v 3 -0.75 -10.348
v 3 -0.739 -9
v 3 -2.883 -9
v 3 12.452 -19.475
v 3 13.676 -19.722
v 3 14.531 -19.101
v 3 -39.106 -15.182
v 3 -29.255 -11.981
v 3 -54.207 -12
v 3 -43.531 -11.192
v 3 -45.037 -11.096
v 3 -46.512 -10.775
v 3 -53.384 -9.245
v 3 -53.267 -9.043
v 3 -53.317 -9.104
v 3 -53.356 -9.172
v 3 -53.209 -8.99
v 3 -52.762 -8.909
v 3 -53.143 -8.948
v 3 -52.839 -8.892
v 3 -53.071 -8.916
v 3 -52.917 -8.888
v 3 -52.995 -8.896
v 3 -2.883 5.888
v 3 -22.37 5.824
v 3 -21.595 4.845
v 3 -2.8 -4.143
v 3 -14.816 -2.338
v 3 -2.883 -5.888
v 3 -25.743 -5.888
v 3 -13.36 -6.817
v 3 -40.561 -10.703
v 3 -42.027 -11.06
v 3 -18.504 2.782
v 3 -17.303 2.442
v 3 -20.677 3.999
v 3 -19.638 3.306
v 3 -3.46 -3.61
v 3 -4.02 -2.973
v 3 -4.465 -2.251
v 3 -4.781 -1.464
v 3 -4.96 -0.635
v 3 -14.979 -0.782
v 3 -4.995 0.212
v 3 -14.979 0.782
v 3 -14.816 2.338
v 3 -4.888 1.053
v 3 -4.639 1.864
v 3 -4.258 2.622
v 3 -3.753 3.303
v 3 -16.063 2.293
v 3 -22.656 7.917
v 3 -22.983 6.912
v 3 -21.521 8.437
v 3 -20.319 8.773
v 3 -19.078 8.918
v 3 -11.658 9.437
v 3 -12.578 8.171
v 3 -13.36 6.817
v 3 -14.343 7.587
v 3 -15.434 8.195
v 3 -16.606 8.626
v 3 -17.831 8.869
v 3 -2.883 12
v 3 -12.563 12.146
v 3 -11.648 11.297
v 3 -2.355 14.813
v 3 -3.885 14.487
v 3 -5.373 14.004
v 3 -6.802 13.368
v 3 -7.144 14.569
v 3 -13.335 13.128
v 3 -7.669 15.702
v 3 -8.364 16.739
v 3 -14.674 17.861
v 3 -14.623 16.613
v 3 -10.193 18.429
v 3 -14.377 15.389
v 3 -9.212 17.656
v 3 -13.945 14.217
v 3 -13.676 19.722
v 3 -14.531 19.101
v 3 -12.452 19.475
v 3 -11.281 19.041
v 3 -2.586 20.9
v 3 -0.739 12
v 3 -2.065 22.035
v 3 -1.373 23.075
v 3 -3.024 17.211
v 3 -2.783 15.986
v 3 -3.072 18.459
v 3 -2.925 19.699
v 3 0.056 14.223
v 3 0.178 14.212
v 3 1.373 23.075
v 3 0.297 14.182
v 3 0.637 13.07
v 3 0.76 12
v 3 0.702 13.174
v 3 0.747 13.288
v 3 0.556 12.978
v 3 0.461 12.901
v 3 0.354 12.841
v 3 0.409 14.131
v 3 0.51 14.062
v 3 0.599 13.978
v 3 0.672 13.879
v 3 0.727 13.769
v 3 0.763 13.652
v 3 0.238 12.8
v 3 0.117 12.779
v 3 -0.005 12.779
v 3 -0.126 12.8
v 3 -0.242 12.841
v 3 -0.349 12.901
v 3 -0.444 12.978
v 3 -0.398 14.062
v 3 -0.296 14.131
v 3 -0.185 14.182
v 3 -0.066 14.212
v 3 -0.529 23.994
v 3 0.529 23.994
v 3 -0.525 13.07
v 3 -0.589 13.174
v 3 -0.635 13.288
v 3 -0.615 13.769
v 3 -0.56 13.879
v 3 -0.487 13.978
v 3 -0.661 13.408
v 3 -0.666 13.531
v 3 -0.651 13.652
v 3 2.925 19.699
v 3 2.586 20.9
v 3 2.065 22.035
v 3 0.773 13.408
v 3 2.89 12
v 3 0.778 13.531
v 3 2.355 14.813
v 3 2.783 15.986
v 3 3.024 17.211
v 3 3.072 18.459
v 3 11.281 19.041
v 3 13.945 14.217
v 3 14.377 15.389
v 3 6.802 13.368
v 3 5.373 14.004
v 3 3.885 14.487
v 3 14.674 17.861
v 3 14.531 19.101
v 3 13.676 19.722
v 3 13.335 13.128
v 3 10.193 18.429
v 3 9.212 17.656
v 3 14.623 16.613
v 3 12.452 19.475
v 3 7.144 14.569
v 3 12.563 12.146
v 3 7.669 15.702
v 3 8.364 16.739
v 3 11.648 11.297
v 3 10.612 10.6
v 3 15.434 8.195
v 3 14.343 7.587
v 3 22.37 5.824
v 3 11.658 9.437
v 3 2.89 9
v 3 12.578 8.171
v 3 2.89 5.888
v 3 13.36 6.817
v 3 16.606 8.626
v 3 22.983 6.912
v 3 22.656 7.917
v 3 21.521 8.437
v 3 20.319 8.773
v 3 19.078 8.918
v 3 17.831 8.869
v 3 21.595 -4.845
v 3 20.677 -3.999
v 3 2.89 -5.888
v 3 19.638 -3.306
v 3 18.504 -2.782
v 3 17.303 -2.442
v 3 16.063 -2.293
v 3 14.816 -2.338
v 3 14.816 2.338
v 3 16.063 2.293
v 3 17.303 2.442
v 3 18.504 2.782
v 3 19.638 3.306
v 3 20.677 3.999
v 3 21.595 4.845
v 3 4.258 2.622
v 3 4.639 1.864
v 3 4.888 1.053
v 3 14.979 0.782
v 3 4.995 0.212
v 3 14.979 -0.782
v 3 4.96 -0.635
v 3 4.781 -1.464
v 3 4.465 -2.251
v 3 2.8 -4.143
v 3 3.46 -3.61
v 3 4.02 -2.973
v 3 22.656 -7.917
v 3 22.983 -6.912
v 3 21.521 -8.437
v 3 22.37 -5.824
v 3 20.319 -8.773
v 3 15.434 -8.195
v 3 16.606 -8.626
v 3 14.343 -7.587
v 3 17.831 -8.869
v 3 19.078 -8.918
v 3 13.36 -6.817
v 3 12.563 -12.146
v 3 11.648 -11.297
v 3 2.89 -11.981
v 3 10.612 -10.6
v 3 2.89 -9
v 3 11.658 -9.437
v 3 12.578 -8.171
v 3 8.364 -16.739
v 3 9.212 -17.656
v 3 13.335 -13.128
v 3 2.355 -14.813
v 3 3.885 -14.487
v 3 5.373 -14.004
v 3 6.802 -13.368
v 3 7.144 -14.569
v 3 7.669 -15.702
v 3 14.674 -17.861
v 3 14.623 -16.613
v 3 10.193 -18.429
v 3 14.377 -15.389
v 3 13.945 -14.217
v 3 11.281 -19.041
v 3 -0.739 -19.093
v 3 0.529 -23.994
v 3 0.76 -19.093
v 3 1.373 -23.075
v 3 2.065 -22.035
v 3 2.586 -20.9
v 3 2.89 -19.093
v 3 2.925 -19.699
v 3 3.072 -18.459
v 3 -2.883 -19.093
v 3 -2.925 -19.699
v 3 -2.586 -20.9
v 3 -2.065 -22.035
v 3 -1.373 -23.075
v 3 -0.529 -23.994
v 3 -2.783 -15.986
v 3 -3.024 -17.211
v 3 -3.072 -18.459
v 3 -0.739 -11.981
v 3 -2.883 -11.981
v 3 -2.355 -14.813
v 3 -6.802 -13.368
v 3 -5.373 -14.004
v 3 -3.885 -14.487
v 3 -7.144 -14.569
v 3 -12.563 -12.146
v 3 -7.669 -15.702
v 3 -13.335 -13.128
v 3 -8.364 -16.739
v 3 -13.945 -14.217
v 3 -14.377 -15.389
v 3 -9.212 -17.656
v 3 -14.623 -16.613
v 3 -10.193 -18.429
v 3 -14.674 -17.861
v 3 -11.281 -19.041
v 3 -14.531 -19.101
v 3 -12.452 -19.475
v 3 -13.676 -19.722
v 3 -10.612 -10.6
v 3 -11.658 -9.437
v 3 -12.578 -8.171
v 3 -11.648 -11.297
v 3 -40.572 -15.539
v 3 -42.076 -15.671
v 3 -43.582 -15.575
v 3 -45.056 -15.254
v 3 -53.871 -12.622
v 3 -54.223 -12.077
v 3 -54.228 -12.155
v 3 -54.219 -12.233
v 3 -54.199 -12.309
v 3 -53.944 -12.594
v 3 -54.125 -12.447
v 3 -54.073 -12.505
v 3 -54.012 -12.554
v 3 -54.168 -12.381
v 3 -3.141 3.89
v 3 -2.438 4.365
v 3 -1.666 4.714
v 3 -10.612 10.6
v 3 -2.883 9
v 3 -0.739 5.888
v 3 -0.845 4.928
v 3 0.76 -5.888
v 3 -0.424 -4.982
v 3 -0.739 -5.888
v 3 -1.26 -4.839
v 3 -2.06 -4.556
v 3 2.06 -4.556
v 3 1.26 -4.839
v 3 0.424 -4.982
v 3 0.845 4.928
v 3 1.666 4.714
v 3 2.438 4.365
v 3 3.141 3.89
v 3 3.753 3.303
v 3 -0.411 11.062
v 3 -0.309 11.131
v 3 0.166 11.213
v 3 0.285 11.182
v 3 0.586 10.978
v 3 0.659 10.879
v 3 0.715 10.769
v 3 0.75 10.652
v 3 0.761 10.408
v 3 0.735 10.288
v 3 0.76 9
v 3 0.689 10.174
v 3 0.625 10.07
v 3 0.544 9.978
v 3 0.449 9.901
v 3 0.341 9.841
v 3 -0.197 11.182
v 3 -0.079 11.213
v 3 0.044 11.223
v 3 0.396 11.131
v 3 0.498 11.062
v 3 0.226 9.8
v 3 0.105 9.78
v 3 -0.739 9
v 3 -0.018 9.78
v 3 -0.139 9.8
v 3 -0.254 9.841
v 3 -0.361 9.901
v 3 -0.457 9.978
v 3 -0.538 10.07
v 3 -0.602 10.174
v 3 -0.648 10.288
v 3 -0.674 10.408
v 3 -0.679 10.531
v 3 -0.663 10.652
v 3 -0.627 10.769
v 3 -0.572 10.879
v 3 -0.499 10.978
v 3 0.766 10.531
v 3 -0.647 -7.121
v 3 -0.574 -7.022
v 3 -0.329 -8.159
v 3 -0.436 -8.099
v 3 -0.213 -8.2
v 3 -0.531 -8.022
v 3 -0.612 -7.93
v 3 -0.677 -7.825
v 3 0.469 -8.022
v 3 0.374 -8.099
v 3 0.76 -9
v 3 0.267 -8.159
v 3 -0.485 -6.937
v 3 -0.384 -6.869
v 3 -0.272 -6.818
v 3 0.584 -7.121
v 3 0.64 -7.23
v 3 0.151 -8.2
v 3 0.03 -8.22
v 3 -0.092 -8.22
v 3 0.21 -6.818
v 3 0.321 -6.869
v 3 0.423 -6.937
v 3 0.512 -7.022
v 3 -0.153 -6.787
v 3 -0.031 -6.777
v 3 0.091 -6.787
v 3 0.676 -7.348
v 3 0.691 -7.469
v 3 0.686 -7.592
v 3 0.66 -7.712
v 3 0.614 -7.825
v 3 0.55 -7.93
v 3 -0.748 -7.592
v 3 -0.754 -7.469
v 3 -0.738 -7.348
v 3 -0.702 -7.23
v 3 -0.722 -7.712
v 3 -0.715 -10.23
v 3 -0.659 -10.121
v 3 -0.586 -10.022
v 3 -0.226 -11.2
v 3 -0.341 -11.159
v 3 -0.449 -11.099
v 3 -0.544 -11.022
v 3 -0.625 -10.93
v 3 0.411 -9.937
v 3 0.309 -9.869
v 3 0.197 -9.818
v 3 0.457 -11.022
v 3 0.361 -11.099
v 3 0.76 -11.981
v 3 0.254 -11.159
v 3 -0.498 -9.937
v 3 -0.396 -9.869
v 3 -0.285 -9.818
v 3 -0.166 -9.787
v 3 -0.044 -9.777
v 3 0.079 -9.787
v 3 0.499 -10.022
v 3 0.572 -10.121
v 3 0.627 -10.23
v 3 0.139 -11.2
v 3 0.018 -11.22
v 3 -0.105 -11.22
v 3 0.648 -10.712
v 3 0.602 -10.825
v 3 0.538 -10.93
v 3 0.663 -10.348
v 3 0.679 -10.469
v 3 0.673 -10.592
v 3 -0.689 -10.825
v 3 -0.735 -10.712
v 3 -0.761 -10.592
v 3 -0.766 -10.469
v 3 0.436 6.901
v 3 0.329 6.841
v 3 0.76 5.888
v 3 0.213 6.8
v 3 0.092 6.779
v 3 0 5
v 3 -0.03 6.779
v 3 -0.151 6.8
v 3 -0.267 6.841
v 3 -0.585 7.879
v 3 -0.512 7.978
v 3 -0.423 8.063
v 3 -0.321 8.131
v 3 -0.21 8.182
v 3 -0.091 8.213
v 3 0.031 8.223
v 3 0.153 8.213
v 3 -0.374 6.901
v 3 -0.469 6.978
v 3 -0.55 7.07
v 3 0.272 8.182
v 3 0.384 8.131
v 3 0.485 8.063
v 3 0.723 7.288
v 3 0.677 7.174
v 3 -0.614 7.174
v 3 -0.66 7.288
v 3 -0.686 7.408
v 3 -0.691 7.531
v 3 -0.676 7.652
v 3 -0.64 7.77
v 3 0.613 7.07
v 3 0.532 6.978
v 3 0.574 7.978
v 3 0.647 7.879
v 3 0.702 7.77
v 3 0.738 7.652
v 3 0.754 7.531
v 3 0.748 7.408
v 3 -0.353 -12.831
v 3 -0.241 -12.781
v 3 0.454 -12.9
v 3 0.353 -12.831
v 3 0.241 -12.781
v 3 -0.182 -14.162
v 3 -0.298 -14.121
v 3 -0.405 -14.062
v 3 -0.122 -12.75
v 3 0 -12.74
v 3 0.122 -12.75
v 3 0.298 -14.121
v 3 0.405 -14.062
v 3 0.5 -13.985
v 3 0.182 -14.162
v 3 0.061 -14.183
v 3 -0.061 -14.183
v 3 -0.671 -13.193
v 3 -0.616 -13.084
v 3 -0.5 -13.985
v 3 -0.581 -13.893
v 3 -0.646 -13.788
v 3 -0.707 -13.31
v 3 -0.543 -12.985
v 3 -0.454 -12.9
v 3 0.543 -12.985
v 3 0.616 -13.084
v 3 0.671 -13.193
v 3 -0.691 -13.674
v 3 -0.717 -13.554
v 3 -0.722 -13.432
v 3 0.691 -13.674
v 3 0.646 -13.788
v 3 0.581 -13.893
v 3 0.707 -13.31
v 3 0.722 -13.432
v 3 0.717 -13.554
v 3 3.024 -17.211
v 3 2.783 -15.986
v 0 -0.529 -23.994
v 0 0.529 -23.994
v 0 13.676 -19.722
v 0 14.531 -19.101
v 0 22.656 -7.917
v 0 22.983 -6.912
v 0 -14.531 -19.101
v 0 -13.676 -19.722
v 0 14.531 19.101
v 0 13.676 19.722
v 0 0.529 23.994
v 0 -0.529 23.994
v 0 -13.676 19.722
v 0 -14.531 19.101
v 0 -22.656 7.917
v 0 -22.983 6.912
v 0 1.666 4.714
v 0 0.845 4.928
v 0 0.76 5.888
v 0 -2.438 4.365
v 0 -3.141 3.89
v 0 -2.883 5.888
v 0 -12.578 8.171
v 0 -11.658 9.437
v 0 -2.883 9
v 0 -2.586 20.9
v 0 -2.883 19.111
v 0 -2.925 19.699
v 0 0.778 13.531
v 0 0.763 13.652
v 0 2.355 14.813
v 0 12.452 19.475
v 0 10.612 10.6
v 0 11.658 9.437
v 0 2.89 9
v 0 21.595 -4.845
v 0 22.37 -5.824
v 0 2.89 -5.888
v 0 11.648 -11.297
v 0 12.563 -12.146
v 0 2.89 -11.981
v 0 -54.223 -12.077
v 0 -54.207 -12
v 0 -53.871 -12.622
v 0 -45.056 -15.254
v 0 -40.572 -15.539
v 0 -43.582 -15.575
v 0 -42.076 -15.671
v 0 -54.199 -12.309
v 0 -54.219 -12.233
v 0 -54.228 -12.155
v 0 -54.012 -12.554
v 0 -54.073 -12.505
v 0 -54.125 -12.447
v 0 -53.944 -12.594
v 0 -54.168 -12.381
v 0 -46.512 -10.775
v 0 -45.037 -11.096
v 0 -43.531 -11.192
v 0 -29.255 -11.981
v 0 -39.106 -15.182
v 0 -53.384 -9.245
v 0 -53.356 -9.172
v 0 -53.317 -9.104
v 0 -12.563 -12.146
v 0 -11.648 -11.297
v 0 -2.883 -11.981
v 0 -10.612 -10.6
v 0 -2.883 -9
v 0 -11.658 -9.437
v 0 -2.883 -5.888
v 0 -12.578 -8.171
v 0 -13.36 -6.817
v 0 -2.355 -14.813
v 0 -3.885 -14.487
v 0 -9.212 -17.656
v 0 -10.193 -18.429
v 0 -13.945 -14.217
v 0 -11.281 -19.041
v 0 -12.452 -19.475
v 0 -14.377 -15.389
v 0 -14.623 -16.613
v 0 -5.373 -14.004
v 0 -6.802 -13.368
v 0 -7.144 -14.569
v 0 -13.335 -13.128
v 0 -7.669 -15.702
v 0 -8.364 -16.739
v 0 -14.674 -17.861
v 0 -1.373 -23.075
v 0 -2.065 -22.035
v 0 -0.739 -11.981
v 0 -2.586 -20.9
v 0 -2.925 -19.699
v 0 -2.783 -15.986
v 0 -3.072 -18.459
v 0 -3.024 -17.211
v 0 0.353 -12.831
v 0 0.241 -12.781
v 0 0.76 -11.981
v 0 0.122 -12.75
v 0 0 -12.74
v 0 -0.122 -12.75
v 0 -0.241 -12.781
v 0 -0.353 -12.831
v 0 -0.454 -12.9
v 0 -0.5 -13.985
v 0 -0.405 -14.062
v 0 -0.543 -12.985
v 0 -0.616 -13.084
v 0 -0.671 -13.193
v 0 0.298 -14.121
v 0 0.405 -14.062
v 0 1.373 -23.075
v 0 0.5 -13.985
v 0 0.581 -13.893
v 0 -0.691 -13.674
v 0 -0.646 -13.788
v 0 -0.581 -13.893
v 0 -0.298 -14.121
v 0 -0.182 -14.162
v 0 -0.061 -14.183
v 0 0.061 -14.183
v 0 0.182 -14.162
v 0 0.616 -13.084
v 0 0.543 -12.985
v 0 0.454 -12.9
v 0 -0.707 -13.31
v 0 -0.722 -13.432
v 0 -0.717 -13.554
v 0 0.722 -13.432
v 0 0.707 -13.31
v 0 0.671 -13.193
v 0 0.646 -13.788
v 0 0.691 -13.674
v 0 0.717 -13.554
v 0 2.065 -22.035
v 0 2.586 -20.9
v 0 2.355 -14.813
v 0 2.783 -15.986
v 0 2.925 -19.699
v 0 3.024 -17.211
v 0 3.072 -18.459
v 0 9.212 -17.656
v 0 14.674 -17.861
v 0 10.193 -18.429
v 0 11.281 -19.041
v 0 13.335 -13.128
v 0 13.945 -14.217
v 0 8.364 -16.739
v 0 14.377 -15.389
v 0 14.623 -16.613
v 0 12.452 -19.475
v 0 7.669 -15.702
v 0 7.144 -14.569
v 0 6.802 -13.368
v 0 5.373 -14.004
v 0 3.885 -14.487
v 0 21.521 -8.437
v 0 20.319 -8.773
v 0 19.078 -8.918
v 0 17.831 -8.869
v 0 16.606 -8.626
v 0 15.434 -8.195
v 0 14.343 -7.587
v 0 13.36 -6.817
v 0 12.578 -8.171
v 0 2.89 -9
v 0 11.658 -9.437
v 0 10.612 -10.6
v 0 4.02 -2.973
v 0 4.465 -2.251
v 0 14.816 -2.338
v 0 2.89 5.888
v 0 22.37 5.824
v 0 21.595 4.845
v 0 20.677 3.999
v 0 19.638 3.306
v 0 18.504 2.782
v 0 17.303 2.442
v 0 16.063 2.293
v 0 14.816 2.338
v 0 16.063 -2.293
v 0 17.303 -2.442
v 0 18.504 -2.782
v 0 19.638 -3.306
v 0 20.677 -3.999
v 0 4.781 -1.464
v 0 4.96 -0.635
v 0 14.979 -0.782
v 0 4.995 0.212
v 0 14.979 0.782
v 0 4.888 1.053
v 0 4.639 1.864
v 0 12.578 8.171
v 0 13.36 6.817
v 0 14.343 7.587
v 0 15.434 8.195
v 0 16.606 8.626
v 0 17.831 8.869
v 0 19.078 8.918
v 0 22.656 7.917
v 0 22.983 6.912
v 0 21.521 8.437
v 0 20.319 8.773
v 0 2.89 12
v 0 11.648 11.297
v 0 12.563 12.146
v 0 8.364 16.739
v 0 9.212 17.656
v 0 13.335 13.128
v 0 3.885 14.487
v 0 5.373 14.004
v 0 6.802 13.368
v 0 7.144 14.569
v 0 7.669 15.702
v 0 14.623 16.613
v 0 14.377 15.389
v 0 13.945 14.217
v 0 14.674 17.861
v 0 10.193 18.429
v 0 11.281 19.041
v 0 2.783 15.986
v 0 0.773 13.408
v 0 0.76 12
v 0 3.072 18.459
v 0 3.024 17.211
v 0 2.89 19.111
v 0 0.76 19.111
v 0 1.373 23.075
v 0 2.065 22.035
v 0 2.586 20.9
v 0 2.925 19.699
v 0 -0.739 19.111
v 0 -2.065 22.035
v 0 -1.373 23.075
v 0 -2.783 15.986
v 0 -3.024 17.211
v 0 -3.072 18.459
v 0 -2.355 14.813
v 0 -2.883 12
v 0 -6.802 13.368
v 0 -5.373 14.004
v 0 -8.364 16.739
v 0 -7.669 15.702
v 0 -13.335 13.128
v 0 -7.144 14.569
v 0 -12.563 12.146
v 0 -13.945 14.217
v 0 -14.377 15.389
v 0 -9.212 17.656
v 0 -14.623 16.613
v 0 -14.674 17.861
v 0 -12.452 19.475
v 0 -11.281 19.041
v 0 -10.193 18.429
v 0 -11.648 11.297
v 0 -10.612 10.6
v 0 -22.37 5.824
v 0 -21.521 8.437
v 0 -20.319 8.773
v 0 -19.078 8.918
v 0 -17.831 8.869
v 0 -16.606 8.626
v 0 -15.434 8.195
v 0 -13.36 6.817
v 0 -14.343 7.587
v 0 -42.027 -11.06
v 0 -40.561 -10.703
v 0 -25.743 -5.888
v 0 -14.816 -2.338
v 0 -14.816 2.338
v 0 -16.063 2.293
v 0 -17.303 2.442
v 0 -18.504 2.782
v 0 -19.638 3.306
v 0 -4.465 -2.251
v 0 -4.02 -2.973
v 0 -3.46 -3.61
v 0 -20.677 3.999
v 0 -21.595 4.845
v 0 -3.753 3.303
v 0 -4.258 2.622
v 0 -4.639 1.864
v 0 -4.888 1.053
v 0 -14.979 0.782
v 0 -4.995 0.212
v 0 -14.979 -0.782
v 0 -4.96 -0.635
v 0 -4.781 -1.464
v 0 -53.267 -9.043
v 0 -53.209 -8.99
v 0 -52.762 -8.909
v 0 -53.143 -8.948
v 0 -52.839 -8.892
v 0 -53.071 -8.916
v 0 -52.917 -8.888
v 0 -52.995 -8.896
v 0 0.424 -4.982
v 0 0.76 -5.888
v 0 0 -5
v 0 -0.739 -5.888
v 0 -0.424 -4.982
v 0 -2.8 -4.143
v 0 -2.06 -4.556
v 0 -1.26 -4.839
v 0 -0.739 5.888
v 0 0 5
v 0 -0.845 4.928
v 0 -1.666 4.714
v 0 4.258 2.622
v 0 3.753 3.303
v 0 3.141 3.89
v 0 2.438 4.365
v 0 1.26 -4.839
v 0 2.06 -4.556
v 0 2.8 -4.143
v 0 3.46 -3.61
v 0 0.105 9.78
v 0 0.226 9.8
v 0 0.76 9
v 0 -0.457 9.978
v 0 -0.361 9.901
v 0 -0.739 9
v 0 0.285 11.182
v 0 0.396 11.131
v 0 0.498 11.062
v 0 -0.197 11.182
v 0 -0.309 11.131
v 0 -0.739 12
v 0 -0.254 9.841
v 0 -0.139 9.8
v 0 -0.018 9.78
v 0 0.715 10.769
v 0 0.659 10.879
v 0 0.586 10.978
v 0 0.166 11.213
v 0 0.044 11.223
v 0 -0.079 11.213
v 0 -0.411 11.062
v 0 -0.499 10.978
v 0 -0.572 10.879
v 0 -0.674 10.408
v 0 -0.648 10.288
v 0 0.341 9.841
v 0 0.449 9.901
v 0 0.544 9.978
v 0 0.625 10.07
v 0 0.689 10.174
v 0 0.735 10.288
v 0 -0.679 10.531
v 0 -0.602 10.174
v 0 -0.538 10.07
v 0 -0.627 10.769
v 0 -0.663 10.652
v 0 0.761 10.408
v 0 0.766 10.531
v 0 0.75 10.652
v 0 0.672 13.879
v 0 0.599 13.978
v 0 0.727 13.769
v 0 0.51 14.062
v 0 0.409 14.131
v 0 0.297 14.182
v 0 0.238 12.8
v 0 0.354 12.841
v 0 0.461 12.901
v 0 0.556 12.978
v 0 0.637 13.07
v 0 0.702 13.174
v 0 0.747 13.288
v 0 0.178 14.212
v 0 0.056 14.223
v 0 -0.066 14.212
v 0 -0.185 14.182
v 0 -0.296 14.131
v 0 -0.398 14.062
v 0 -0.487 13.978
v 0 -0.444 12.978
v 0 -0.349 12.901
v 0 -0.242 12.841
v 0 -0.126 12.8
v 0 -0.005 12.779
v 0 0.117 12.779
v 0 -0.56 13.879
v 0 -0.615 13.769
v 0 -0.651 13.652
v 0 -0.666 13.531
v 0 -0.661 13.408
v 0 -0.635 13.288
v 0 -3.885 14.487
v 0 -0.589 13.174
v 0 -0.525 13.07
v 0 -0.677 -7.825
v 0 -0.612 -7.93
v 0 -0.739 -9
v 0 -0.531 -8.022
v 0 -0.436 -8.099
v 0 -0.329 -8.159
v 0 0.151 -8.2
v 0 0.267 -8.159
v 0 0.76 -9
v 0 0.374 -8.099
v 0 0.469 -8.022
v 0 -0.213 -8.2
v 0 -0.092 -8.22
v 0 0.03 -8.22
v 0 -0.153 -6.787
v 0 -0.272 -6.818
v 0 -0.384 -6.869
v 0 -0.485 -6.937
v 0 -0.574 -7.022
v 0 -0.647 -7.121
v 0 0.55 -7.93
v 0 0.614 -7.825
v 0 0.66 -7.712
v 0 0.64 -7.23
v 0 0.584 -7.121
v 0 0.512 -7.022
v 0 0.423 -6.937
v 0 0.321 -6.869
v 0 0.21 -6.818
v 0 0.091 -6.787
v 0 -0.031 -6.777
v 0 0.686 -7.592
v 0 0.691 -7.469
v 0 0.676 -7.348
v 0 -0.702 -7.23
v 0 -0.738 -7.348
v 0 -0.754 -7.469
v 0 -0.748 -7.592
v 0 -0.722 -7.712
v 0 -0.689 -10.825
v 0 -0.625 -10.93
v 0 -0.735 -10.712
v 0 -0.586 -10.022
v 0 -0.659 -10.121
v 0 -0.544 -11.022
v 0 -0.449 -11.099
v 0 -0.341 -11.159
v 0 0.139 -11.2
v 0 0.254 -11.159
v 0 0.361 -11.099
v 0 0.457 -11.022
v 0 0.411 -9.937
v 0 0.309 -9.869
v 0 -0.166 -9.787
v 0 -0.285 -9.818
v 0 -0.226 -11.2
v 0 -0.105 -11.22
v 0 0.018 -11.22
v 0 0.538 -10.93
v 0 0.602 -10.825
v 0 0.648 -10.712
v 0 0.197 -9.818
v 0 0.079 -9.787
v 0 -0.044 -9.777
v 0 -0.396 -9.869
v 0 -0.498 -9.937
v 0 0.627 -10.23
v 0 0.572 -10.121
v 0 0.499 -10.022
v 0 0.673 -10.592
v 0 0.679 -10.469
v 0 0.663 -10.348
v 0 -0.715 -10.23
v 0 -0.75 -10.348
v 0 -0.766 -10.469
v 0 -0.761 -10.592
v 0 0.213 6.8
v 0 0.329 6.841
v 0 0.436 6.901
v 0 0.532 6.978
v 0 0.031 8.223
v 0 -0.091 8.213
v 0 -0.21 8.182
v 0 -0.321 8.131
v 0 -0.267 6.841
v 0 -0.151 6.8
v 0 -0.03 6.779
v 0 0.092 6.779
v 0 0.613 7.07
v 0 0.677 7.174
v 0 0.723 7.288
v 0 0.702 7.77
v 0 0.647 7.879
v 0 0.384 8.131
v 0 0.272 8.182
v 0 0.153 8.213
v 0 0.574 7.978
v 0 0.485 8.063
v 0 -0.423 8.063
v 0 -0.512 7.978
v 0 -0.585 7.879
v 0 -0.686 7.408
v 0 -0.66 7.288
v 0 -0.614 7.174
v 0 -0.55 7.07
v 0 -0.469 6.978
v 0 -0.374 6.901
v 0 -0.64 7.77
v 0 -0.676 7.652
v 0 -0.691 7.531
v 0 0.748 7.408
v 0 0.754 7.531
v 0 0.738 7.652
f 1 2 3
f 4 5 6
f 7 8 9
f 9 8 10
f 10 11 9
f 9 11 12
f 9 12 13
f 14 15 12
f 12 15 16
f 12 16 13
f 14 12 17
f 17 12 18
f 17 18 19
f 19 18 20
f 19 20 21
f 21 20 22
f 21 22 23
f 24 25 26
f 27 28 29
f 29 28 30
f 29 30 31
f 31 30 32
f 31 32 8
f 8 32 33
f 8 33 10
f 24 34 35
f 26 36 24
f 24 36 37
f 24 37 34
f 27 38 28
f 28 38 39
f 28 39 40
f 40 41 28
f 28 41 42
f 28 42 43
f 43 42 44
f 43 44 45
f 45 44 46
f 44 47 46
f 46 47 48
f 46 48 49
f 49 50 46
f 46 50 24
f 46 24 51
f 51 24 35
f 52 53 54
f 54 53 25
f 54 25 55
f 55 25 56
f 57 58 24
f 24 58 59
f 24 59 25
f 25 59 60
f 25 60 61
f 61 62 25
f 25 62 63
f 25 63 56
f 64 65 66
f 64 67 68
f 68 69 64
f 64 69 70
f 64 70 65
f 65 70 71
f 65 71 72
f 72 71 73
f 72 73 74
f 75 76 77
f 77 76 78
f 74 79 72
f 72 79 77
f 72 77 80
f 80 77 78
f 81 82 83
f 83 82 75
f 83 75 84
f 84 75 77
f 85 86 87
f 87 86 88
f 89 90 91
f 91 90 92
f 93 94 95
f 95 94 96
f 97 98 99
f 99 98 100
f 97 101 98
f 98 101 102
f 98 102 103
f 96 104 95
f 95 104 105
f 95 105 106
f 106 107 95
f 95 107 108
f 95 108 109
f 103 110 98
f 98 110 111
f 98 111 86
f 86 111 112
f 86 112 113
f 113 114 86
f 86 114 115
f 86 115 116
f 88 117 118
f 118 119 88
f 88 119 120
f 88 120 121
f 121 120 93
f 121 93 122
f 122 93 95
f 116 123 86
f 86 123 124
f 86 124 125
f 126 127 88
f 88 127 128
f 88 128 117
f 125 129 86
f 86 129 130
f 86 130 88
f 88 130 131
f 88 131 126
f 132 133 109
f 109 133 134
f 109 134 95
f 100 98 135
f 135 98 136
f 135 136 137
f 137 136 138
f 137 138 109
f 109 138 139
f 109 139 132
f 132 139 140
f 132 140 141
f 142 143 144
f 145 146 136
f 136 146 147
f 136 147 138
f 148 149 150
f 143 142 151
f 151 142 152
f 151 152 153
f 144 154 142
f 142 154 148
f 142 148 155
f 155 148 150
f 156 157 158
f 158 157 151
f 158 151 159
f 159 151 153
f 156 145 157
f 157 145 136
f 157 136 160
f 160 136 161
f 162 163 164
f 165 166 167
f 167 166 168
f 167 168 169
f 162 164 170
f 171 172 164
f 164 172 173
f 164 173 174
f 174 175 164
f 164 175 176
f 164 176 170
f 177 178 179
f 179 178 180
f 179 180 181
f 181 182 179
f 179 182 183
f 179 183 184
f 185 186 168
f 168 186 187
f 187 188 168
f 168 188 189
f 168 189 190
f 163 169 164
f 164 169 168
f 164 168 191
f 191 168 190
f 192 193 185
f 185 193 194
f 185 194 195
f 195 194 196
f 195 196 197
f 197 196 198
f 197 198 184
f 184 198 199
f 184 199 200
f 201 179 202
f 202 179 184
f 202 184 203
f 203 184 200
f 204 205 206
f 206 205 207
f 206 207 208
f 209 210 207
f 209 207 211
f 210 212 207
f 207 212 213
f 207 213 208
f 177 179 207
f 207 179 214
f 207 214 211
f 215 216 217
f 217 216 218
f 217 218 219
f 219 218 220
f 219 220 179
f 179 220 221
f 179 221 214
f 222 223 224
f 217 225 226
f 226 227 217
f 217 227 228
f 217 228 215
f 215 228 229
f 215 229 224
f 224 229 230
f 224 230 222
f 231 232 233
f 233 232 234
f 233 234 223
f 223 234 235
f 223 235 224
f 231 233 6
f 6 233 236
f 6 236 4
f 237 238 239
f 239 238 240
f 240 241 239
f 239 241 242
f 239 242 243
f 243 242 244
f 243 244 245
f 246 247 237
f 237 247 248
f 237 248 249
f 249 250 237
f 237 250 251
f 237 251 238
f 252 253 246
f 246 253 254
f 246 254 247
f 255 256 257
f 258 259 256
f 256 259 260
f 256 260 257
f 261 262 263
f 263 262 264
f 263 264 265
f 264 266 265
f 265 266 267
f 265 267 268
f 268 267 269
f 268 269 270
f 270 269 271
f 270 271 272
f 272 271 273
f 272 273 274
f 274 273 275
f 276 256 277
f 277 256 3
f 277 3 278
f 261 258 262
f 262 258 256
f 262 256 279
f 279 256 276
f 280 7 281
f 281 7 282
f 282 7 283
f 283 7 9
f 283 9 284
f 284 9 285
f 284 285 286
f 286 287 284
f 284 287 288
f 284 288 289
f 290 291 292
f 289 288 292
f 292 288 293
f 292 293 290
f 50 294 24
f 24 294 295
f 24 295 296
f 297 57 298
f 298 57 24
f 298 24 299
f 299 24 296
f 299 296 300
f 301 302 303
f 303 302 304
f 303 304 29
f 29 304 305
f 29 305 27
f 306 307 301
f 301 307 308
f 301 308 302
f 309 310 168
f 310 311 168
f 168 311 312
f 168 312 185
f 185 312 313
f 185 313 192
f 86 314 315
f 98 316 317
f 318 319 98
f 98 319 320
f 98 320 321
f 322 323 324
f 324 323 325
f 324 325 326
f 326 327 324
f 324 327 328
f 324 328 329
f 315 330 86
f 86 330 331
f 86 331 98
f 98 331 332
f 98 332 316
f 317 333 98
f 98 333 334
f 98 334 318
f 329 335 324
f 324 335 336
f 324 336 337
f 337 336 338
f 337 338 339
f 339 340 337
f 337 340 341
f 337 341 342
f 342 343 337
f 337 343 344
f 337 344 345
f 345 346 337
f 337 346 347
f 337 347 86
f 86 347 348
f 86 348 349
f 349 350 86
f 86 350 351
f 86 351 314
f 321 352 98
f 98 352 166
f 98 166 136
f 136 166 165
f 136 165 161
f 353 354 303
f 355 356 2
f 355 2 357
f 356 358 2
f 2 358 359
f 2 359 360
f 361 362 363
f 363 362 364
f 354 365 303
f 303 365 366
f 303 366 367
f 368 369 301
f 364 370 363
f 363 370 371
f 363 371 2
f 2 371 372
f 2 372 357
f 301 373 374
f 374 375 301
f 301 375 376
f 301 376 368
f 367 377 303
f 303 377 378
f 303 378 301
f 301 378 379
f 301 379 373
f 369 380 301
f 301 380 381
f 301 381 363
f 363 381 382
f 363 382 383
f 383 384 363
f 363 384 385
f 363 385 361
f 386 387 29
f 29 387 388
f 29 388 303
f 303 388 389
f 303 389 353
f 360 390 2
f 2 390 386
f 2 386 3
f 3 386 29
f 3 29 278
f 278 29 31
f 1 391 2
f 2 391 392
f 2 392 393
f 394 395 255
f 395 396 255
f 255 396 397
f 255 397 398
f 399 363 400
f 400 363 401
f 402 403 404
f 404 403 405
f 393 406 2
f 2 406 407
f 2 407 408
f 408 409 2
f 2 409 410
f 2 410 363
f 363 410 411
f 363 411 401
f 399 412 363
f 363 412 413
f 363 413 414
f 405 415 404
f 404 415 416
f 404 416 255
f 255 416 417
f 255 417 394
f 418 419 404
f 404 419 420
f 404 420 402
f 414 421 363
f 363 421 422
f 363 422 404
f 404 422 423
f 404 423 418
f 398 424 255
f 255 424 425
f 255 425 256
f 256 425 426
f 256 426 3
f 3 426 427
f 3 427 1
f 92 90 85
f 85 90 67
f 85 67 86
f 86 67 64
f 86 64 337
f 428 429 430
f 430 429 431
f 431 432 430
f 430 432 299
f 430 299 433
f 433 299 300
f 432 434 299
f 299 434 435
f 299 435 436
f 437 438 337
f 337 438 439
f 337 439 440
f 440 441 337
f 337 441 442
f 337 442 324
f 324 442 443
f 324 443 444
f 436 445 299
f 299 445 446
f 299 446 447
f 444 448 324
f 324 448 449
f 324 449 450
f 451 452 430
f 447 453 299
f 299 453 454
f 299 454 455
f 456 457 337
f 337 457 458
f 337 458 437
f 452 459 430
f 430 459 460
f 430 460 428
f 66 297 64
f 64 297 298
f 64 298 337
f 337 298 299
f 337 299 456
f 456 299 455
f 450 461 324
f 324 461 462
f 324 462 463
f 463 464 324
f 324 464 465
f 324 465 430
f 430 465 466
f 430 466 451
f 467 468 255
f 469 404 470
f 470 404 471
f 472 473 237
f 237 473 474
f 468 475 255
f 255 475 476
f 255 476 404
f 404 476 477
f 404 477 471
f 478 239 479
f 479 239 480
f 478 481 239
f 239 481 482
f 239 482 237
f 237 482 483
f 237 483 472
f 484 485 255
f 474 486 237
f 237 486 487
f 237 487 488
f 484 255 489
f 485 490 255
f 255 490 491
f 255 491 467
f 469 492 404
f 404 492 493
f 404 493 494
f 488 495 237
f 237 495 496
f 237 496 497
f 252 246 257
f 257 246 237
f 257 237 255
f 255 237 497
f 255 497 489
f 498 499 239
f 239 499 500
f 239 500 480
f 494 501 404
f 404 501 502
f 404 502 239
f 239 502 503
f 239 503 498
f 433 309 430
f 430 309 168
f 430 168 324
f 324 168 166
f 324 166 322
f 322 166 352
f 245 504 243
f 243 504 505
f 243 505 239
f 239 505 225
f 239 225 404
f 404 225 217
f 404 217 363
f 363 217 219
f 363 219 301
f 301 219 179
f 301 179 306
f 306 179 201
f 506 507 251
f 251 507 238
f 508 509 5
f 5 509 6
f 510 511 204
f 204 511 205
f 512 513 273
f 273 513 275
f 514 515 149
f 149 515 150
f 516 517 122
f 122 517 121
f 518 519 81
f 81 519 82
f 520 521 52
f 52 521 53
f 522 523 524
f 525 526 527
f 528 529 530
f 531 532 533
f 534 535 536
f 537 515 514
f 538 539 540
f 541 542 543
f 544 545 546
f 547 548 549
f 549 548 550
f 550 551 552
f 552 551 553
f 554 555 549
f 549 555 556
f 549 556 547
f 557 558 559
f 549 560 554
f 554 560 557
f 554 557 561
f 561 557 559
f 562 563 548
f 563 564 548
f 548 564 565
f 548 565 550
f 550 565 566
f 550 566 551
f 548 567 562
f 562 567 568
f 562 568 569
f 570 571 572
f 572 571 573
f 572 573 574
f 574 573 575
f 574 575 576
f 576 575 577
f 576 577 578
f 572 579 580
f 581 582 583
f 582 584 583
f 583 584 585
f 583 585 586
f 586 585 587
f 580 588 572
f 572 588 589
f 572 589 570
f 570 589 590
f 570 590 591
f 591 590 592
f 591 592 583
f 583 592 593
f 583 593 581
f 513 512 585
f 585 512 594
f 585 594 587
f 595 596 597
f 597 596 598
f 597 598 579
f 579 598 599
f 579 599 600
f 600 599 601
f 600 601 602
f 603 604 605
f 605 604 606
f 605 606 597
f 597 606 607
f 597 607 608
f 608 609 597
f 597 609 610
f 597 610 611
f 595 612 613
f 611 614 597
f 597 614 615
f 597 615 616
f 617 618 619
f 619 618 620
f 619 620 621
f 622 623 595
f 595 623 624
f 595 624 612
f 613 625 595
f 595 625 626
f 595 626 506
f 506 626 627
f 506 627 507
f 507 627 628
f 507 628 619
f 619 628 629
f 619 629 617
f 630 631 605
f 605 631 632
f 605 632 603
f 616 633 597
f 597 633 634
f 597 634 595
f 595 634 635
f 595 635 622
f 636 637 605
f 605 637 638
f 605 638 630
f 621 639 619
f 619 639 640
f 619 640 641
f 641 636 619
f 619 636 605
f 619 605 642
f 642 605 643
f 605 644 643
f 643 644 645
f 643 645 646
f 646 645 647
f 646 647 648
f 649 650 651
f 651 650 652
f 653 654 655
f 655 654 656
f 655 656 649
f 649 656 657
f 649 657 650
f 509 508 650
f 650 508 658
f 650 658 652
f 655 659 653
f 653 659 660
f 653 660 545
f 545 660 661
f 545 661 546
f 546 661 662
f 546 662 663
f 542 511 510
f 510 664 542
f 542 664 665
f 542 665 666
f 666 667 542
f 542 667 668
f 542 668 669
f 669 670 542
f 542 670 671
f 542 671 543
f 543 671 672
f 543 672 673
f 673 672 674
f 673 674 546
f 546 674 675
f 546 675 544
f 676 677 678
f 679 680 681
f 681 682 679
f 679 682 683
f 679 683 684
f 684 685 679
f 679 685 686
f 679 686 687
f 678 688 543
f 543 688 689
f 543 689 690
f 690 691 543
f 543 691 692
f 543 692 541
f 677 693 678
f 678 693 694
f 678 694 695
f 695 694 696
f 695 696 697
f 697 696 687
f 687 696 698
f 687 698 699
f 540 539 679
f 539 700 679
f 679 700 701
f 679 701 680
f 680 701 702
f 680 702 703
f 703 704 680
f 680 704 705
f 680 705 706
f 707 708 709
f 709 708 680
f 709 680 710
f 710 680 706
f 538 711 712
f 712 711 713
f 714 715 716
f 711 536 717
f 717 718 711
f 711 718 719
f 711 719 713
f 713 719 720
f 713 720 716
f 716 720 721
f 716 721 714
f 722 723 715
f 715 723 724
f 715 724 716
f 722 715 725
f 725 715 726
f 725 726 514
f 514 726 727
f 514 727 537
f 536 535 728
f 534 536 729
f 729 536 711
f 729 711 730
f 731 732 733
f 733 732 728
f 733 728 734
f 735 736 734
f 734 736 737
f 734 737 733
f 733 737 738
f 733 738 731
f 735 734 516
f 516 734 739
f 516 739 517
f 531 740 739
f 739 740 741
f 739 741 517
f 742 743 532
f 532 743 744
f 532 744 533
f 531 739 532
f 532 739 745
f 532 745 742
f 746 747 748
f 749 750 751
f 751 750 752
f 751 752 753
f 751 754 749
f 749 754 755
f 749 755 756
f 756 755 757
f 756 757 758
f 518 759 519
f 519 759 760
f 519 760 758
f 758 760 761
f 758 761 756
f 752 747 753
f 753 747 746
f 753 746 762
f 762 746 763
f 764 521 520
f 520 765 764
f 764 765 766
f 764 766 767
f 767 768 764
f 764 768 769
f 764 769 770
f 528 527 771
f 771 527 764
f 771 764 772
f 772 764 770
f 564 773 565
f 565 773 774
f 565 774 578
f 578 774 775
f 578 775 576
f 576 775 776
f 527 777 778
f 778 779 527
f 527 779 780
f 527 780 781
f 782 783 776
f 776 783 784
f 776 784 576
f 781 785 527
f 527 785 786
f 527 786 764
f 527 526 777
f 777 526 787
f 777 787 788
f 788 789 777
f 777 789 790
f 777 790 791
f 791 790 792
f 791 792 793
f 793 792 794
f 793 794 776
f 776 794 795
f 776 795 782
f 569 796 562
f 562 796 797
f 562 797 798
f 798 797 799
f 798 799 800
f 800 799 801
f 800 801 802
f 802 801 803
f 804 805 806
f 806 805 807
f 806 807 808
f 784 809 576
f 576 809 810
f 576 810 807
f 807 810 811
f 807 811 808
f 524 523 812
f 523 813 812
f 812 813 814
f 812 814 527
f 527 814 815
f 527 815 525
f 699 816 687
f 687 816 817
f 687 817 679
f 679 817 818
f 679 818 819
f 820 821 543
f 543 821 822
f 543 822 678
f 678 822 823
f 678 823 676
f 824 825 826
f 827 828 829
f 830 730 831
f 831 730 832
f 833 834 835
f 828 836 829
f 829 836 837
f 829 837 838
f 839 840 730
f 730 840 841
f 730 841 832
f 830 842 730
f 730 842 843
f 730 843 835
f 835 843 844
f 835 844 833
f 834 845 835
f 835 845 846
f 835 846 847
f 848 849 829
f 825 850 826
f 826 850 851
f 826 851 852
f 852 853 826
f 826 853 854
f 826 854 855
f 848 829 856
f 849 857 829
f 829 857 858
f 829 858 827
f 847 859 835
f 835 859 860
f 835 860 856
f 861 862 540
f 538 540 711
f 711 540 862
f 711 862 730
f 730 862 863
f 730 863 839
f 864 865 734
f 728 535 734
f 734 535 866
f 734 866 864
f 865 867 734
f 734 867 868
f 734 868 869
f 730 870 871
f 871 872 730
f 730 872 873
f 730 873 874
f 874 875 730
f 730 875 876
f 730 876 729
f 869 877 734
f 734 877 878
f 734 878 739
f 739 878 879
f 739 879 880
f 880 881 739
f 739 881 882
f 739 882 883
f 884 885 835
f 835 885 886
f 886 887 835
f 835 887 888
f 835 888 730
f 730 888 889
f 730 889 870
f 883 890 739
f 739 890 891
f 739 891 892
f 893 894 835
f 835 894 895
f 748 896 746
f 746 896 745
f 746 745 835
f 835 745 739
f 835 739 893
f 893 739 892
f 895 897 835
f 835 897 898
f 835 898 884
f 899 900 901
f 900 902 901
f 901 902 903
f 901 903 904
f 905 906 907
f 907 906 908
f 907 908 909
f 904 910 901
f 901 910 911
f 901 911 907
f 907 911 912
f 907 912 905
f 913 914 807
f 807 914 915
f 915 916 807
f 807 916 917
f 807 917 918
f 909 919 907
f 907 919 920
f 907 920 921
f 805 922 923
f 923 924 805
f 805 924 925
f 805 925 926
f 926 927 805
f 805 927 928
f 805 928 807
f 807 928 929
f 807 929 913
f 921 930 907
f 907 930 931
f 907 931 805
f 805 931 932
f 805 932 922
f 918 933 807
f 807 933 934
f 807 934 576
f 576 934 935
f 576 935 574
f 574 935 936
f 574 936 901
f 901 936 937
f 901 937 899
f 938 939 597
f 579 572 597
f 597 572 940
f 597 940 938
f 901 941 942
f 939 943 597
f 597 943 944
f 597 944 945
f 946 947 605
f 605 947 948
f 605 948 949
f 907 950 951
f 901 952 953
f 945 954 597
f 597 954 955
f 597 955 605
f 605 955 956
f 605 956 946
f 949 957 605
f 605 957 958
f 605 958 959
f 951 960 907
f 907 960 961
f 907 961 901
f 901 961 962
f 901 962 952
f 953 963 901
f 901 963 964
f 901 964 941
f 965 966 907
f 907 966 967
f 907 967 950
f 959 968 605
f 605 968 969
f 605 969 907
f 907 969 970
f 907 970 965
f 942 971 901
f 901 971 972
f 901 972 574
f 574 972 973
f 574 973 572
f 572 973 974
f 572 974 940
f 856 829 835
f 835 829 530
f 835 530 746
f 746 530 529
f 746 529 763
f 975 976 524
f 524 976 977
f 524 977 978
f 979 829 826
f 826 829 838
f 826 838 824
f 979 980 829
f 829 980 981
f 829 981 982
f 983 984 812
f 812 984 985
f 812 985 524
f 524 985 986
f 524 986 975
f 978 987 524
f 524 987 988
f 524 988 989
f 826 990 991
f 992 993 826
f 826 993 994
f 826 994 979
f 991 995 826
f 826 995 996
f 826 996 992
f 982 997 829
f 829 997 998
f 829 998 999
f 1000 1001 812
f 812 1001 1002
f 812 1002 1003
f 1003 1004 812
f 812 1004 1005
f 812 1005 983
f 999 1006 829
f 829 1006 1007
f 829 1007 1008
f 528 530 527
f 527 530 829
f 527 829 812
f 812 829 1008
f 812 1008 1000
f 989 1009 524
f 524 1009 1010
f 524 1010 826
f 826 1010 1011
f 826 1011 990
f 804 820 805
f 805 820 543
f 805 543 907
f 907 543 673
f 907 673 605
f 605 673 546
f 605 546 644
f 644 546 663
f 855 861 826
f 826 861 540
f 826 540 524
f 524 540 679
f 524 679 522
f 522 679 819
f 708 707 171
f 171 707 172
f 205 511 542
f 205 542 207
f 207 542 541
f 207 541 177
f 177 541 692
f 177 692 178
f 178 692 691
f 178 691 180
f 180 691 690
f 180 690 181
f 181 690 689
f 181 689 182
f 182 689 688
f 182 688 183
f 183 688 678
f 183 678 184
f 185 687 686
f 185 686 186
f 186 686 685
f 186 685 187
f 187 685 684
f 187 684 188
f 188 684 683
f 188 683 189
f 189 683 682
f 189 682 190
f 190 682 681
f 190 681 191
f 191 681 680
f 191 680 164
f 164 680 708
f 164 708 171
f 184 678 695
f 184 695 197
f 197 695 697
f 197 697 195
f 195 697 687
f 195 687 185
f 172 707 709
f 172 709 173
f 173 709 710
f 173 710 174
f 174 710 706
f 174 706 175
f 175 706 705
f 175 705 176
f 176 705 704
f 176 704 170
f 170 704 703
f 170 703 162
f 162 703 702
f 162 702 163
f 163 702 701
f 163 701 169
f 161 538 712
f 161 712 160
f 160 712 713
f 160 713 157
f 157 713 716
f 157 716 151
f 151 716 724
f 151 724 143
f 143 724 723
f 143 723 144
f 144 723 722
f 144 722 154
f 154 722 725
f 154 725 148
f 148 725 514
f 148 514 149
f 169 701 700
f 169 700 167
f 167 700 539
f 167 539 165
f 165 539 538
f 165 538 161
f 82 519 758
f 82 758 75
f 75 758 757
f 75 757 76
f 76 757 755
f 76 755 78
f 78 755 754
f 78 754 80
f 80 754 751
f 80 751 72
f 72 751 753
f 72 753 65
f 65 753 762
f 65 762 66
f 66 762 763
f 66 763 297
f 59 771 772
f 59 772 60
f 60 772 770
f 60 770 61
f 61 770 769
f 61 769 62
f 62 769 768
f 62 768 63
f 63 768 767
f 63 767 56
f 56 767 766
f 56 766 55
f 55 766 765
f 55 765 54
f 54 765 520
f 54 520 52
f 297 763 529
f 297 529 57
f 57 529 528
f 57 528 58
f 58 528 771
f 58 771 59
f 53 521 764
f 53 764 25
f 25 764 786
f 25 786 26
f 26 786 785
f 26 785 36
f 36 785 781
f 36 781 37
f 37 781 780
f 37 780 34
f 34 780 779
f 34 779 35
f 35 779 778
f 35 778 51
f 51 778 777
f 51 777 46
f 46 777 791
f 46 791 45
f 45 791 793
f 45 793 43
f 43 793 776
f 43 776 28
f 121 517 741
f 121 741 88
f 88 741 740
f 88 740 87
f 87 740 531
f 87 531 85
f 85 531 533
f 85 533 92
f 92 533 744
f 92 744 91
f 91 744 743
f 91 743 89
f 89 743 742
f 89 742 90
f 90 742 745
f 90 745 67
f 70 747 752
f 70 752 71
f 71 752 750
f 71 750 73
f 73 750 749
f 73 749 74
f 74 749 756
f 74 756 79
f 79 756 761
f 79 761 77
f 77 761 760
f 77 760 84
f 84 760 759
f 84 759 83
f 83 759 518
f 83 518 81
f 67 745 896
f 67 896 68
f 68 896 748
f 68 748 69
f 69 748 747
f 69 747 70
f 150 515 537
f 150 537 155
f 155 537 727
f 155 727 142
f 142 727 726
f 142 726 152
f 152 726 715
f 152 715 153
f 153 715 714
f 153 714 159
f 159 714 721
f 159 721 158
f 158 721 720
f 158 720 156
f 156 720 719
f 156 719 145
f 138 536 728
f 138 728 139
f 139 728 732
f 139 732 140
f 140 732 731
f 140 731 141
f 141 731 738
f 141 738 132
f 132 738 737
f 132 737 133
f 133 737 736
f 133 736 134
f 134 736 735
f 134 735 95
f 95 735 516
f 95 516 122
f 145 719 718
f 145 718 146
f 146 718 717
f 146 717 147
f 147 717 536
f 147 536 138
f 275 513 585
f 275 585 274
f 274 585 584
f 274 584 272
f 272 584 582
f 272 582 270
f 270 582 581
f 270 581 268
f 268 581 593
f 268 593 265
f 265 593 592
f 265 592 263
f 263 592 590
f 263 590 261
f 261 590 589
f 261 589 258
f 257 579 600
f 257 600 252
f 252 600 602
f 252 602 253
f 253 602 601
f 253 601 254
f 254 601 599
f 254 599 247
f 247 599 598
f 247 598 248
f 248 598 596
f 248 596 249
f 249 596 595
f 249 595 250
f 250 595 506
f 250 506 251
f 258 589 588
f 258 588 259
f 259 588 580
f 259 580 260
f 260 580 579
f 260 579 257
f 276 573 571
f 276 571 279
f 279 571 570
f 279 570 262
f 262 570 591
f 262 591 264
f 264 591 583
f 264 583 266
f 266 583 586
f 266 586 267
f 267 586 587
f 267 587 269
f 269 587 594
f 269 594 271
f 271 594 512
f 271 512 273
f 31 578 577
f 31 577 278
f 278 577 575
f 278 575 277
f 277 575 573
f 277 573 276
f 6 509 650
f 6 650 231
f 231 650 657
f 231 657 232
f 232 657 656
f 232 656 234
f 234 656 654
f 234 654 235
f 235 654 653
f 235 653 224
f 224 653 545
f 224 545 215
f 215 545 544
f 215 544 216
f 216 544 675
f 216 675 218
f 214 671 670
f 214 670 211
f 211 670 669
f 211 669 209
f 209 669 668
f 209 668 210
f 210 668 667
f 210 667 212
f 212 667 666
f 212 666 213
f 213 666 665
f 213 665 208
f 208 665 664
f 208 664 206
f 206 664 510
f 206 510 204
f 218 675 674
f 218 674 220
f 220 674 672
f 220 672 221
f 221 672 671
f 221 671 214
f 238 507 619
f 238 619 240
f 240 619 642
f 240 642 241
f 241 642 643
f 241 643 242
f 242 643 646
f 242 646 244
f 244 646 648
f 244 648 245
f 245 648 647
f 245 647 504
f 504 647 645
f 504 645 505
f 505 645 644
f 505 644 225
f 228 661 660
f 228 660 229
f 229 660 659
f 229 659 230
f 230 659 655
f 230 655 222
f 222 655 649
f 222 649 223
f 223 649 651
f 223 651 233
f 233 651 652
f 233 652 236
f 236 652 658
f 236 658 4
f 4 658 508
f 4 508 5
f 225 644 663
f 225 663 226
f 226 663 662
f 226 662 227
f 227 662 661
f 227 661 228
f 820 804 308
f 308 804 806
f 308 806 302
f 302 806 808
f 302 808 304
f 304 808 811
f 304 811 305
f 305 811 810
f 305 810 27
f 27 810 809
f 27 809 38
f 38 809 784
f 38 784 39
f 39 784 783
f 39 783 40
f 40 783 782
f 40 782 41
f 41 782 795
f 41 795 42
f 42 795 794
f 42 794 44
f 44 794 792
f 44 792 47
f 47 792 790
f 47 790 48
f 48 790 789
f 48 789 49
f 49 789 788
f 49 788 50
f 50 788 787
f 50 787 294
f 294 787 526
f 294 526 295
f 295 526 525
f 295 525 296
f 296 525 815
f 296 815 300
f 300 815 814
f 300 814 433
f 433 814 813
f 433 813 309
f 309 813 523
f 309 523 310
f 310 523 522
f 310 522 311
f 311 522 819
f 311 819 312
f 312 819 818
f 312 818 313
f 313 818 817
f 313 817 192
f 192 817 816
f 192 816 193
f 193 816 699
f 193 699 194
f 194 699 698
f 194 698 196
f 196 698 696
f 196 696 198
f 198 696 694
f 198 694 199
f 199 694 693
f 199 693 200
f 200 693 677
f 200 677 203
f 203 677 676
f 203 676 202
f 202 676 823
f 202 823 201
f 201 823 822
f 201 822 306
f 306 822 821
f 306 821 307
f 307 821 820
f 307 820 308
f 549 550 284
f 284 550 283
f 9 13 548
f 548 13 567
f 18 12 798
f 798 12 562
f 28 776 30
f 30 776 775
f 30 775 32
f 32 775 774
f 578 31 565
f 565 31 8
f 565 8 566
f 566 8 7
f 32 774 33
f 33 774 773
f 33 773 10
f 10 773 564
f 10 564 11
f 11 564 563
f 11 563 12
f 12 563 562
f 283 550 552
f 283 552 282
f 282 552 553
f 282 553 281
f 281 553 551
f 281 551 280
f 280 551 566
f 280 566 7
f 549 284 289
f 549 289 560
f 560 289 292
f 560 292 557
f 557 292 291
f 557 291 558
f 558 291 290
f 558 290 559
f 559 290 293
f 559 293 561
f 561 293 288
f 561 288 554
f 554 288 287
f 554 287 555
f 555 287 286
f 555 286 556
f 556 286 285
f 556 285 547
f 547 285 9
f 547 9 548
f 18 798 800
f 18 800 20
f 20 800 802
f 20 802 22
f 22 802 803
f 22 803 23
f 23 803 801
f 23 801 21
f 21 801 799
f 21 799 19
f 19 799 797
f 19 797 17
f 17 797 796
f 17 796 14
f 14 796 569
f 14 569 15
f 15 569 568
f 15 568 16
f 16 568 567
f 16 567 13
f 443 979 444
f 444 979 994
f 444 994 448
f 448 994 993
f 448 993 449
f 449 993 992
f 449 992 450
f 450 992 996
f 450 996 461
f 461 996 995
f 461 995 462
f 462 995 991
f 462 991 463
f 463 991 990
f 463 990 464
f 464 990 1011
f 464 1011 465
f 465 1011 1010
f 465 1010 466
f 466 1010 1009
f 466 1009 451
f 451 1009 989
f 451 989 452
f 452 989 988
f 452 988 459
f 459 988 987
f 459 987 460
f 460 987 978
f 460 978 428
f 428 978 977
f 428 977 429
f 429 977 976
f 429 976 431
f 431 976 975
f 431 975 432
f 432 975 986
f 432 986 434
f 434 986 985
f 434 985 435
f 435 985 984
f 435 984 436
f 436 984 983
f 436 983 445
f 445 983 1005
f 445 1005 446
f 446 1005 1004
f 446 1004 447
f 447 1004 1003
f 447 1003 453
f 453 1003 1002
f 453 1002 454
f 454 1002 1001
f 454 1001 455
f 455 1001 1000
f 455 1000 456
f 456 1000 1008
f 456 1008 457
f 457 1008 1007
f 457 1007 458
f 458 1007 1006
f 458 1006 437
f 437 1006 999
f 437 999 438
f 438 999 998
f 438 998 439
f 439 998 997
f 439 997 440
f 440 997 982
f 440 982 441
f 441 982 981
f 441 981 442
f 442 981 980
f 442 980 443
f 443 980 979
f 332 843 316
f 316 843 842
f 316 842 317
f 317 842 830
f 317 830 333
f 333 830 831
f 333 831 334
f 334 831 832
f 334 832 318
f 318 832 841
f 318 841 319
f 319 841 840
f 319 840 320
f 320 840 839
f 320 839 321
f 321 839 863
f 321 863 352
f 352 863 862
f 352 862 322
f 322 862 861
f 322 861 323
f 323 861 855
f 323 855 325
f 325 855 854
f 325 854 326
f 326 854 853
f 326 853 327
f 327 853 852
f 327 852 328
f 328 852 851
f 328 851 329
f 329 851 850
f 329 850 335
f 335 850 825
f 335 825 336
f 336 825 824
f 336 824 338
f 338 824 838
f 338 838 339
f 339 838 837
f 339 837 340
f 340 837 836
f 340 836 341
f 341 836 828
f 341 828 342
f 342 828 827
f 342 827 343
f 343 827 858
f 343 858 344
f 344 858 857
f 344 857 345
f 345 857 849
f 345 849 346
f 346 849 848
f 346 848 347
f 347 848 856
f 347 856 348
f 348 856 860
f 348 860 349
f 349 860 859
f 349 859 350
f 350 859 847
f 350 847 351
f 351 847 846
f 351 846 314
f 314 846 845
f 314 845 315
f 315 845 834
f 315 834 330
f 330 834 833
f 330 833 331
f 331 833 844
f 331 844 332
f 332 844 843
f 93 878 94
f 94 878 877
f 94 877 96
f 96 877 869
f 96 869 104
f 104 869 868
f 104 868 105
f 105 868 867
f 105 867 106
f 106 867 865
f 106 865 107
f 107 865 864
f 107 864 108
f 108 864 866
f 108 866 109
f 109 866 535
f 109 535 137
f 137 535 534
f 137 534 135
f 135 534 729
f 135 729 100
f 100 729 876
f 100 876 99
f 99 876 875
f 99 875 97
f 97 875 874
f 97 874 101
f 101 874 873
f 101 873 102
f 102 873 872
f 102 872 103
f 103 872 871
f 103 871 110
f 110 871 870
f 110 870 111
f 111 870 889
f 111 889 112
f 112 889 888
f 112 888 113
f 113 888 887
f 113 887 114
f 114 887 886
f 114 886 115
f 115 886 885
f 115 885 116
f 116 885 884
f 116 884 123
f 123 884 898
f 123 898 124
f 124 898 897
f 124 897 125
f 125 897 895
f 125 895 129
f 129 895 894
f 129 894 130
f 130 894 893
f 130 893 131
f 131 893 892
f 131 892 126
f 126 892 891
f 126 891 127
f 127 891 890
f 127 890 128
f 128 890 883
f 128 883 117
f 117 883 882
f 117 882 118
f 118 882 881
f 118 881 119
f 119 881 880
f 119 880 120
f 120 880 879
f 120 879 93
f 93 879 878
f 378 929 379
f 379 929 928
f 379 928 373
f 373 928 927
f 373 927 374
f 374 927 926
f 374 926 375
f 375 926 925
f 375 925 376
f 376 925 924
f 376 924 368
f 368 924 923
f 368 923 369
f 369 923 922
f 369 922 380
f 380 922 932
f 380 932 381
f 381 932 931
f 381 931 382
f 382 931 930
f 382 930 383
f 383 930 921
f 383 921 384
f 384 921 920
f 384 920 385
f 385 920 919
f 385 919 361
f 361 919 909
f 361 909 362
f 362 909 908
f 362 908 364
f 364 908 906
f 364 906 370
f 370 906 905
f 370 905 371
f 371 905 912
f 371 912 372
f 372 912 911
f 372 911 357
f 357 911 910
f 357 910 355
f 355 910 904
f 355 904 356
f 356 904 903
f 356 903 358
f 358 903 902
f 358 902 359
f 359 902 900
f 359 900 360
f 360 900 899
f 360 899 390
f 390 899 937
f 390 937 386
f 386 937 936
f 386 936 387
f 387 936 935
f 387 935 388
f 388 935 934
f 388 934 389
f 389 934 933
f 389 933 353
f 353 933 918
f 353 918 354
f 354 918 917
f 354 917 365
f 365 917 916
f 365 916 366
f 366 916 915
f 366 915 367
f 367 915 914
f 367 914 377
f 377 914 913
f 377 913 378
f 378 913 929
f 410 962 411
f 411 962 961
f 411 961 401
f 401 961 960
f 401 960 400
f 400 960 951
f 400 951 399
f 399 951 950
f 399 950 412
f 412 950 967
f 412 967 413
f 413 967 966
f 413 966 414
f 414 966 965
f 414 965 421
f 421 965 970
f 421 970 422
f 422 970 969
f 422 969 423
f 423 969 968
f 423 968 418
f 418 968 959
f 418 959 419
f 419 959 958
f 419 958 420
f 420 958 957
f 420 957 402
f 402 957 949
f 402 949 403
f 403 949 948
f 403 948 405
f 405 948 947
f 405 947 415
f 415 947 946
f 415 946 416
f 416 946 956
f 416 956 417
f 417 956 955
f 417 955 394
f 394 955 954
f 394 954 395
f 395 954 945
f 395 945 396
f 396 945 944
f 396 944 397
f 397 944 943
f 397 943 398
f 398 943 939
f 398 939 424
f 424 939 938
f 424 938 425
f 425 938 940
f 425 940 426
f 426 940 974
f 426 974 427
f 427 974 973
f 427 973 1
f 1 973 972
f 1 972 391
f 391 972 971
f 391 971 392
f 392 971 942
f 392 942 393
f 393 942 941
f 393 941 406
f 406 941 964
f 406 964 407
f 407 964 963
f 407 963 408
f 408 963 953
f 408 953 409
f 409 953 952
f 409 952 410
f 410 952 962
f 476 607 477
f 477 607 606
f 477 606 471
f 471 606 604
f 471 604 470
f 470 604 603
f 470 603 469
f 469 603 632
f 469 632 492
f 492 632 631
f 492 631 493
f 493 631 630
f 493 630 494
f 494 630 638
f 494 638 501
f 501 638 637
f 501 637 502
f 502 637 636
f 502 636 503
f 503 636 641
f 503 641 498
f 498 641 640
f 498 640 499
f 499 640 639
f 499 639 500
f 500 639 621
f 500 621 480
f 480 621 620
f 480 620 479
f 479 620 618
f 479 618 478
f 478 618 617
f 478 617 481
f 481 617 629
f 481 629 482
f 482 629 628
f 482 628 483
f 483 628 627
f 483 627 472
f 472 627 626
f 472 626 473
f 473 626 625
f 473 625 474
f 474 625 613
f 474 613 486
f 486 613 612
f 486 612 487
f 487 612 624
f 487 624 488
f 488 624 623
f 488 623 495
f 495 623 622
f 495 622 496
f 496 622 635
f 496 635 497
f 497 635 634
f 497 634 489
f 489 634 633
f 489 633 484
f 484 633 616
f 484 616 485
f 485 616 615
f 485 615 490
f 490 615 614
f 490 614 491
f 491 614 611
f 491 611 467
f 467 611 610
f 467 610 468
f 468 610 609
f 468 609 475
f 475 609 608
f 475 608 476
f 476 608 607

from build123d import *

# Parameters (mm, degrees)
BASPROSKE_W         = 3
BASPROSKE_H         = 24
TOOTHCUT_DEPTH      = 35.073450075
TEETHCUTS_COUNT     = 10
TEETHCUTS_ANGLE     = 324
BORSKE_R            = 5
BORE_DEPTH          = 50.0000508
CUT_EXTRUDE1_DEPTH  = 10
BOSS_EXTRUDE1_DEPTH = 3
FILLET1_R           = 10
FILLET2_R           = 0.5
SKETCH4_R           = 0.723099704
SKETCH4_R_2         = 0.723
CUT_EXTRUDE2_DEPTH  = 60.377084251


with BuildPart() as part:
    # BasProSke → Base-Revolve (revolve)
    with BuildSketch(Plane(origin=(0, 0, 0), x_dir=(1, 0, 0), z_dir=(0, 1, 0)), mode=Mode.PRIVATE) as base_revolve_sk:
        with Locations((1.5, 12)):
            Rectangle(BASPROSKE_W, BASPROSKE_H)
    revolve(base_revolve_sk.sketch.rotate(Axis((-10, 0, 0), (1, 0, 0)), 180), axis=Axis((-10, 0, 0), (1, 0, 0)))

    # TooCutSke → ToothCut (cut, through all)
    with BuildSketch(Plane(origin=(0, 0, 0), x_dir=(0, 0, -1), z_dir=(1, 0, 0))):
        with BuildLine():
            ThreePointArc((2.33803632, 14.815653451), (0, 14.999), (-2.33803632, 14.815653451))
            ThreePointArc((-2.33803632, 14.815653451), (-3.315013319, 19.654913653), (-6.946609122, 22.999227528))
            ThreePointArc((-6.946609122, 22.999227528), (0, 24.0254), (6.946609122, 22.999227528))
            ThreePointArc((6.946609122, 22.999227528), (3.315013319, 19.654913653), (2.33803632, 14.815653451))
        make_face()
    toothcut = extrude(amount=TOOTHCUT_DEPTH, mode=Mode.SUBTRACT)

    # TeethCuts: ToothCut ×10 about axis
    teethcuts_axis = Axis((-10, 0, 0), (1, 0, 0))
    for i in range(1, TEETHCUTS_COUNT):
        add(toothcut.rotate(teethcuts_axis, i * TEETHCUTS_ANGLE / (TEETHCUTS_COUNT - 1)), mode=Mode.SUBTRACT)

    # BorSke → Bore (cut, symmetric)
    with BuildSketch(Plane(origin=(0, 0, 0), x_dir=(0, 0, -1), z_dir=(1, 0, 0))):
        with Locations(Location((0, 0, 0), (0, 0, 180))):
            Circle(BORSKE_R)
    extrude(amount=BORE_DEPTH, both=True, mode=Mode.SUBTRACT)

    # Sketch2 → Cut-Extrude1 (cut)
    with BuildSketch(Plane(origin=(3, 0, 0), x_dir=(0, 0, -1), z_dir=(1, 0, 0))):
        Polygon((6.816911485, -13.360378693), (2.33803632, -14.815653451), (-0.141133304, -15.621184492), (3.422057866, -26.587559293), (12.21539263, -23.730431632), (8.652201461, -12.764056831), align=None)
    extrude(amount=-CUT_EXTRUDE1_DEPTH, mode=Mode.SUBTRACT)

    # Sketch3 → Boss-Extrude1 (add)
    with BuildSketch(Plane(origin=(3, 0, 0), x_dir=(0, 0, -1), z_dir=(1, 0, 0))):
        Polygon((16.145202329, -42.069905854), (12.47904632, -54.349791311), (8.765627157, -53.241151167), (11.666327165, -43.525180612), align=None)
        Polygon((11.666327165, -43.525180612), (16.145202329, -42.069905854), (6.816911485, -13.360378693), (2.33803632, -14.815653451), align=None)
    extrude(amount=-BOSS_EXTRUDE1_DEPTH)

    # Fillet1
    fillet1_edges = [part.edges().sort_by_distance(p)[0] for p in [
        (1.5, -42.069905854, -16.145202329),
        (1.5, -43.525180612, -11.666327165),
    ]]
    fillet(fillet1_edges, radius=FILLET1_R)

    # Fillet2
    fillet2_edges = [part.edges().sort_by_distance(p)[0] for p in [
        (1.5, -54.349791311, -12.47904632),
        (1.5, -53.241151167, -8.765627157),
    ]]
    fillet(fillet2_edges, radius=FILLET2_R)

    # Sketch4 → Cut-Extrude2 (cut, through all)
    with BuildSketch(Plane.ZY):
        with Locations((7.499935211, 0.031174107)):
            Circle(SKETCH4_R)
        with Locations((10.499909296, 0.04364375)):
            Circle(SKETCH4_R_2)
        with Locations((13.499883381, 0.056113393)):
            Circle(SKETCH4_R_2)
        with Locations((-7.499935211, -0.031174107)):
            Circle(SKETCH4_R_2)
        with Locations((-10.499909296, -0.04364375)):
            Circle(SKETCH4_R_2)
        with Locations((-13.462606147, 0)):
            Circle(SKETCH4_R_2)
    extrude(amount=-CUT_EXTRUDE2_DEPTH, mode=Mode.SUBTRACT)


solid = part.part
